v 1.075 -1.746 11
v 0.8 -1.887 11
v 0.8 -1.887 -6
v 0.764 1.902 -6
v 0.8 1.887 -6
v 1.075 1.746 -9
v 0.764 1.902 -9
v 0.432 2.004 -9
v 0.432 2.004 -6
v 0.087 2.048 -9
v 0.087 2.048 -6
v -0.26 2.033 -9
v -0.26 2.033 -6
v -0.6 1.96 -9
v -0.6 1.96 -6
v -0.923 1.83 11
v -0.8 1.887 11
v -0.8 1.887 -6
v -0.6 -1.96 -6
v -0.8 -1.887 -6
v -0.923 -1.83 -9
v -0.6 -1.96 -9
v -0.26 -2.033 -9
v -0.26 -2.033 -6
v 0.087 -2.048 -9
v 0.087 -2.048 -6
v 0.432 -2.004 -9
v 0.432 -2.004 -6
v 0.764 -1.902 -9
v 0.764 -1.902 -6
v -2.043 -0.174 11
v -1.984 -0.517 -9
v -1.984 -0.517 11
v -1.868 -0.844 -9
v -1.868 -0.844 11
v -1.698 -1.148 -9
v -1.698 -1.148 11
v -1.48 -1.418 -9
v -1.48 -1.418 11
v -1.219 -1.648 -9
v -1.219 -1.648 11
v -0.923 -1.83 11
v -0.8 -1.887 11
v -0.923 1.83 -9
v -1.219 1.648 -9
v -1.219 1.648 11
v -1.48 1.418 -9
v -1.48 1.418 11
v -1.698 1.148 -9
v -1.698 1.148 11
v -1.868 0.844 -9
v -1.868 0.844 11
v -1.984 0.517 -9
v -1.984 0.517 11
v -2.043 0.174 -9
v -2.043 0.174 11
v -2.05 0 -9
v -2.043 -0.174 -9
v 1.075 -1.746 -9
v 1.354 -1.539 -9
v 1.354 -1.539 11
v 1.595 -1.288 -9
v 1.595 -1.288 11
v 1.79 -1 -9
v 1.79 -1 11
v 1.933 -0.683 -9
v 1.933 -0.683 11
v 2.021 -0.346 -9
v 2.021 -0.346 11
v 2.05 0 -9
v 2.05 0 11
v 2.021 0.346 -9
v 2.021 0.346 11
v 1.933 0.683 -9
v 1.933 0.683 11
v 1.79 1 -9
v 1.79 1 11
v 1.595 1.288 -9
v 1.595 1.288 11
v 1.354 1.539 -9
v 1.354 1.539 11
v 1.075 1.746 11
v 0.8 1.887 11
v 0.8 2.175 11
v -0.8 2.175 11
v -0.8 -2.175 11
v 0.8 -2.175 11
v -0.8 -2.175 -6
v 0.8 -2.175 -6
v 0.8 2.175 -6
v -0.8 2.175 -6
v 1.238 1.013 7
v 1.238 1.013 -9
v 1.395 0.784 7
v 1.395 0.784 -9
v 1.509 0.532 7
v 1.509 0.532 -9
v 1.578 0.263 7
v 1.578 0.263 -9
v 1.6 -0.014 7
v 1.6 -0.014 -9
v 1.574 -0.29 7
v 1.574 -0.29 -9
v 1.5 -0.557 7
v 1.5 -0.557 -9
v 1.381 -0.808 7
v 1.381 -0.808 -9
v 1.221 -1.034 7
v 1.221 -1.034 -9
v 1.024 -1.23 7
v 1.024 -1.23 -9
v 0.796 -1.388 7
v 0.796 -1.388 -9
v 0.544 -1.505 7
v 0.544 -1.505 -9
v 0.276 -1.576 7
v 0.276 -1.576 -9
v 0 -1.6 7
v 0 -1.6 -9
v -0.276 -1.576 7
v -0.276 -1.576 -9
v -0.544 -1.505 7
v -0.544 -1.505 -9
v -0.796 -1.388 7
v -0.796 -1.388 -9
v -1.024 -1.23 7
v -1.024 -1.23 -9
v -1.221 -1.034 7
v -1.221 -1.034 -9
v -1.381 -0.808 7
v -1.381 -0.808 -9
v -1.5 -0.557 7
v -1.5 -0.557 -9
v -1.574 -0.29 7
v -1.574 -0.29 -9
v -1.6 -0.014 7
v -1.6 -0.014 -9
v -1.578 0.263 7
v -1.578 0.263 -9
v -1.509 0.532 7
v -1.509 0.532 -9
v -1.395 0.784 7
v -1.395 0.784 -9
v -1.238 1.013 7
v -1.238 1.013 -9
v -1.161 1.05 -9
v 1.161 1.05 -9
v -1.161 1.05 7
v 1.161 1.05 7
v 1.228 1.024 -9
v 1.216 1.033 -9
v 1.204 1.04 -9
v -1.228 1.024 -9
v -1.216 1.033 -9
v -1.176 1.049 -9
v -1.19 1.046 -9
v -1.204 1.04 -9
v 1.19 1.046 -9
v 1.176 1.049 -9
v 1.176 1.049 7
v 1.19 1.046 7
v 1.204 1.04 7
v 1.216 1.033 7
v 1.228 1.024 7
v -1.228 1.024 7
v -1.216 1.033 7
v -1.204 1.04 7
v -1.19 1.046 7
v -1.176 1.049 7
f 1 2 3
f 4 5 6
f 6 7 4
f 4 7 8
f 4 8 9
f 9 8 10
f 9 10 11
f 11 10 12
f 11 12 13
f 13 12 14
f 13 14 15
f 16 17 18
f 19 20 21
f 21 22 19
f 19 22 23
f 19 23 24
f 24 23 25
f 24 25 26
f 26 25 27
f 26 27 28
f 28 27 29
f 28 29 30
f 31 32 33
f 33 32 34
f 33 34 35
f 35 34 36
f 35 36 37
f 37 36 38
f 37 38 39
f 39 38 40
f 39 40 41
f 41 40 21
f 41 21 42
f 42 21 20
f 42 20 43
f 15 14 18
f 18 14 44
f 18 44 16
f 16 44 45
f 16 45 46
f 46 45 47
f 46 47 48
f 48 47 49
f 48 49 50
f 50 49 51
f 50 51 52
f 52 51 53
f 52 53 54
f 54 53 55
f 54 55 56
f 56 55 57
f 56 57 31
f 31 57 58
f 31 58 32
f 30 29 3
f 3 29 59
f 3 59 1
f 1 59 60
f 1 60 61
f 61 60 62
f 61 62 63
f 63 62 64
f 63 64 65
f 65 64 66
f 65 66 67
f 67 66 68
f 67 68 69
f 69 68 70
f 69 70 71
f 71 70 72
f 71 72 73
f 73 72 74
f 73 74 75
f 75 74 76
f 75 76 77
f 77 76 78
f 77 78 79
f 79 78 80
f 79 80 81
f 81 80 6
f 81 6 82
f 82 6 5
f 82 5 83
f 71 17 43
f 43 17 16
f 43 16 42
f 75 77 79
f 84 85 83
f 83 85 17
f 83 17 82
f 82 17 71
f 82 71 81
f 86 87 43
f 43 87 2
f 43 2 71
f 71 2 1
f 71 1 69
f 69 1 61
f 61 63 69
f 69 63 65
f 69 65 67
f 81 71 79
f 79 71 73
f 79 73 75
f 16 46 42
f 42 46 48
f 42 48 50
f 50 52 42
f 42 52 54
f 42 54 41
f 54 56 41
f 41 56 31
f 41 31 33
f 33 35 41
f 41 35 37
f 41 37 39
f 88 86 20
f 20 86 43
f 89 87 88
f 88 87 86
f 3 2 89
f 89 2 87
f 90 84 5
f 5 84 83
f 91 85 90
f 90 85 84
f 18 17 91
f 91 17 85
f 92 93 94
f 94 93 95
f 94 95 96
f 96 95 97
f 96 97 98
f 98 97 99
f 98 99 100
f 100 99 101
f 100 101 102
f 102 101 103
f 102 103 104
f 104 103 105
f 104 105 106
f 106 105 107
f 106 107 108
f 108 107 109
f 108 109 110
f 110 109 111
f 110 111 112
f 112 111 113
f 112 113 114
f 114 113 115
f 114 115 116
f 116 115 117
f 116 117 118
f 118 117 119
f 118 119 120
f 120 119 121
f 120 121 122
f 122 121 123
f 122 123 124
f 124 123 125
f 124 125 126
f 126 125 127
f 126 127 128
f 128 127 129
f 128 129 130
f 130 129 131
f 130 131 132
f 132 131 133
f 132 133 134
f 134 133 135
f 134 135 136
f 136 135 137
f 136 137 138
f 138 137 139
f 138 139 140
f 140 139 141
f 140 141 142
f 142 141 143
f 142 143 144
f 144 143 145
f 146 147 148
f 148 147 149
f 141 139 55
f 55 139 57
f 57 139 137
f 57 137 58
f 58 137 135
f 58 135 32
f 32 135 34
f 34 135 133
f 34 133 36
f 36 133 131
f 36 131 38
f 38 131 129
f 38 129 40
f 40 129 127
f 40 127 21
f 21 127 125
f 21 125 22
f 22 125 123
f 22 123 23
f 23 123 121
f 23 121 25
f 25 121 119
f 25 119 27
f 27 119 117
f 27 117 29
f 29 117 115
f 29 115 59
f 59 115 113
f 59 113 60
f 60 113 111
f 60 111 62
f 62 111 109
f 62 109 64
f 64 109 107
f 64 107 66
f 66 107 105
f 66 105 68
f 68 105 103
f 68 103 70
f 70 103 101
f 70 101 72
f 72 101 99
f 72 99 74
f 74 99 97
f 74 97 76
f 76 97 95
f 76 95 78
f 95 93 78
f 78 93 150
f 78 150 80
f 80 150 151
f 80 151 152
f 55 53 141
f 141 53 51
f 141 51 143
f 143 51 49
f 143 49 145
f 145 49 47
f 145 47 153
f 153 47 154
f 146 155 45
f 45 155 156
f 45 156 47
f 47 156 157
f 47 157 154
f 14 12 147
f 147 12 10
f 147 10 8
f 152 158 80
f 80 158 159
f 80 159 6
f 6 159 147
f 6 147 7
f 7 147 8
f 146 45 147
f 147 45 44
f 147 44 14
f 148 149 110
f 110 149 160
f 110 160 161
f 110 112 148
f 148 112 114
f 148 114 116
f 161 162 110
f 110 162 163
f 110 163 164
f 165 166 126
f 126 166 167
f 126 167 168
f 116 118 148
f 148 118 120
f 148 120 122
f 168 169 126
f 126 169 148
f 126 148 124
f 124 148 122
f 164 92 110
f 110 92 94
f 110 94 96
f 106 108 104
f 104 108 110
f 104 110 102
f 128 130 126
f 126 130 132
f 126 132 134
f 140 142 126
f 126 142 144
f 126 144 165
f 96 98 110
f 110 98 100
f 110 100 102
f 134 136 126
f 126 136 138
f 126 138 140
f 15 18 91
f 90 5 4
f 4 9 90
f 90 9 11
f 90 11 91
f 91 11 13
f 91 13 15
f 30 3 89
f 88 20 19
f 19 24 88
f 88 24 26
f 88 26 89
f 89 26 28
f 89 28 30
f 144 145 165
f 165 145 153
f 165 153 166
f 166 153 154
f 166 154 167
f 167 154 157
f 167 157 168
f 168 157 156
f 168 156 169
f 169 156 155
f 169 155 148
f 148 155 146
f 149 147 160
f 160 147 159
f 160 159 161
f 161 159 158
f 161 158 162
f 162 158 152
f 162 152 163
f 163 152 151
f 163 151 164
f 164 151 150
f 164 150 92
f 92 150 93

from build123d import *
from build123d.topology import SkipClean

# Parameters (mm, degrees)
SKETCH1_R                = 2
BOSS_EXTRUDE1_DEPTH      = 7
SKETCH3_R                = 2
SKETCH3_W                = 4.25
SKETCH3_H                = 1.5
BOSS_EXTRUDE3_DEPTH      = 4
BOSS_EXTRUDE4_START      = 4
BOSS_EXTRUDE4_DEPTH      = 4
BOSS_EXTRUDE5_START      = -8
BOSS_EXTRUDE5_DEPTH      = 8
CUT_EXTRUDE1_START       = -8
CUT_EXTRUDE1_DEPTH       = 8
CUT_EXTRUDE2_DEPTH       = 7
BOSS_EXTRUDE6_DEPTH      = 8
BOSS_EXTRUDE6_DEPTH_BACK = 3
SKETCH2_R                = 2.05
SKETCH2_R_2              = 2
BOSS_EXTRUDE7_START      = -8
BOSS_EXTRUDE7_DEPTH      = 8
BOSS_EXTRUDE8_DEPTH      = 9
BOSS_EXTRUDE8_DEPTH_BACK = 7
SKETCH11_R               = 2.05
BOSS_EXTRUDE9_DEPTH      = 9
FILLET1_R                = 0.1


with BuildPart() as part:
    # Sketch1 → Boss-Extrude1 (new body)
    with BuildSketch(Plane.XY):
        Circle(SKETCH1_R)
        with BuildLine():
            ThreePointArc((-1.5, 0), (-1.401258538, 0.535233135), (-1.118033989, 1))
            Line((-1.118033989, 1), (1.118033989, 1))
            ThreePointArc((1.118033989, 1), (1.401258538, 0.535233135), (1.5, 0))
            ThreePointArc((1.5, 0), (0, -1.5), (-1.5, 0))
        make_face(mode=Mode.SUBTRACT)
    extrude(amount=BOSS_EXTRUDE1_DEPTH)

    # Sketch3 → Boss-Extrude3 (add)
    with BuildSketch(Plane.XY.offset(7)):
        with Locations(Location((0, 0, 0), (0, 0, 157.975687163))):
            Circle(SKETCH3_R)
        Rectangle(SKETCH3_W, SKETCH3_H)
    extrude(amount=BOSS_EXTRUDE3_DEPTH)

    # Sketch4 → Boss-Extrude4 (add)
    with BuildSketch(Plane(origin=(0, 0, 7), x_dir=(-1, 0, 0), z_dir=(0, 0, -1)).offset(BOSS_EXTRUDE4_START)):
        with BuildLine():
            Line((-2.125, -0.75), (-1.854049622, -0.75))
            ThreePointArc((-1.854049622, -0.75), (-2, 0), (-1.854049622, 0.75))
            Line((-1.854049622, 0.75), (-2.125, 0.75))
            Line((-2.125, 0.75), (-2.125, -0.75))
        make_face()
        with BuildLine():
            Line((2.125, 0.75), (1.854049622, 0.75))
            ThreePointArc((1.854049622, 0.75), (2, 0), (1.854049622, -0.75))
            Line((1.854049622, -0.75), (2.125, -0.75))
            Line((2.125, -0.75), (2.125, 0.75))
        make_face()
    extrude(amount=-BOSS_EXTRUDE4_DEPTH)

    # Sketch6 → Boss-Extrude5 (add)
    with BuildSketch(Plane.XY.offset(11).offset(BOSS_EXTRUDE5_START)):
        with BuildLine():
            Line((-0.75, -1.854049622), (-0.75, -2.125))
            Line((-0.75, -2.125), (0.75, -2.125))
            Line((0.75, -2.125), (0.75, -1.854049622))
            ThreePointArc((0.75, -1.854049622), (0, -2), (-0.75, -1.854049622))
        make_face()
        with BuildLine():
            Line((0.75, 1.854049622), (0.75, 2.125))
            Line((0.75, 2.125), (-0.75, 2.125))
            Line((-0.75, 2.125), (-0.75, 1.854049622))
            ThreePointArc((-0.75, 1.854049622), (0, 2), (0.75, 1.854049622))
        make_face()
    extrude(amount=BOSS_EXTRUDE5_DEPTH)

    # Sketch7 → Cut-Extrude1 (cut)
    with SkipClean():  # the faces are left unmerged after this step: merging them gives an invalid solid
        with BuildSketch(Plane.XY.offset(11).offset(CUT_EXTRUDE1_START)):
            with BuildLine():
                Line((-2.125, -0.75), (-1.854049622, -0.75))
                ThreePointArc((-1.854049622, -0.75), (-2, 0), (-1.854049622, 0.75))
                Line((-1.854049622, 0.75), (-2.125, 0.75))
                Line((-2.125, 0.75), (-2.125, -0.75))
            make_face()
            with BuildLine():
                Line((1.854049622, -0.75), (2.125, -0.75))
                Line((2.125, -0.75), (2.125, 0.75))
                Line((2.125, 0.75), (1.854049622, 0.75))
                ThreePointArc((1.854049622, 0.75), (2, 0), (1.854049622, -0.75))
            make_face()
        extrude(amount=CUT_EXTRUDE1_DEPTH, mode=Mode.SUBTRACT)

    # Sketch8 → Cut-Extrude2 (cut)
    with SkipClean():  # the faces are left unmerged after this step: merging them gives an invalid solid
        with BuildSketch(Plane(origin=(0, 0, 0), x_dir=(-1, 0, 0), z_dir=(0, 0, -1))):
            with BuildLine():
                Line((-1.183215957, 1.15), (1.183215957, 1.15))
                ThreePointArc((1.183215957, 1.15), (0, -1.65), (-1.183215957, 1.15))
            make_face()
            with BuildLine():
                Line((-1.118033989, 1), (1.118033989, 1))
                ThreePointArc((1.118033989, 1), (0, -1.5), (-1.118033989, 1))
            make_face(mode=Mode.SUBTRACT)
        extrude(amount=-CUT_EXTRUDE2_DEPTH, mode=Mode.SUBTRACT)

    # Sketch2 → Boss-Extrude6 (add, two sides: drawn at the far end of the back side and taken through both)
    with BuildSketch(Plane.XY.offset(3).offset(-BOSS_EXTRUDE6_DEPTH_BACK)):
        Circle(SKETCH2_R)
        Circle(SKETCH2_R_2, mode=Mode.SUBTRACT)
    extrude(amount=BOSS_EXTRUDE6_DEPTH + BOSS_EXTRUDE6_DEPTH_BACK)

    # Sketch10 → Boss-Extrude7 (add)
    with BuildSketch(Plane(origin=(0, 0, 3), x_dir=(-1, 0, 0), z_dir=(0, 0, -1)).offset(BOSS_EXTRUDE7_START)):
        with BuildLine():
            Line((0.75, -1.907878403), (0.75, -2.125))
            Line((0.75, -2.125), (-0.75, -2.125))
            Line((-0.75, -2.125), (-0.75, -1.907878403))
            ThreePointArc((-0.75, -1.907878403), (-0.77506725, -1.897833174), (-0.8, -1.887458609))
            Line((-0.8, -1.887458609), (-0.8, -2.175))
            Line((-0.8, -2.175), (0.8, -2.175))
            Line((0.8, -2.175), (0.8, -1.887458609))
            ThreePointArc((0.8, -1.887458609), (0.77506725, -1.897833174), (0.75, -1.907878403))
        make_face()
        with BuildLine():
            Line((-0.8, 2.175), (-0.8, 1.887458609))
            ThreePointArc((-0.8, 1.887458609), (-0.77506725, 1.897833174), (-0.75, 1.907878403))
            Line((-0.75, 1.907878403), (-0.75, 2.125))
            Line((-0.75, 2.125), (0.75, 2.125))
            Line((0.75, 2.125), (0.75, 1.907878403))
            ThreePointArc((0.75, 1.907878403), (0.77506725, 1.897833174), (0.8, 1.887458609))
            Line((0.8, 1.887458609), (0.8, 2.175))
            Line((0.8, 2.175), (-0.8, 2.175))
        make_face()
    extrude(amount=BOSS_EXTRUDE7_DEPTH)

    # Sketch11 → Boss-Extrude8 (add, two sides: drawn at the far end of the back side and taken through both)
    with BuildSketch(Plane(origin=(0, 0, 0), x_dir=(-1, 0, 0), z_dir=(0, 0, -1)).offset(-BOSS_EXTRUDE8_DEPTH_BACK)):
        with Locations(Location((0, 0, 0), (0, 0, 112.969676572))):
            Circle(SKETCH11_R)
        with BuildLine():
            Line((-1.207269647, 1.05), (1.207269647, 1.05))
            ThreePointArc((1.207269647, 1.05), (0, -1.6), (-1.207269647, 1.05))
        make_face(mode=Mode.SUBTRACT)
    extrude(amount=BOSS_EXTRUDE8_DEPTH + BOSS_EXTRUDE8_DEPTH_BACK)

    # Sketch12 → Boss-Extrude9 (add)
    with BuildSketch(Plane(origin=(0, 0, 3), x_dir=(-1, 0, 0), z_dir=(0, 0, -1))):
        with BuildLine():
            Line((-0.8, 2.175), (-0.8, 1.887458609))
            ThreePointArc((-0.8, 1.887458609), (0, 2.05), (0.8, 1.887458609))
            Line((0.8, 1.887458609), (0.8, 2.175))
            Line((0.8, 2.175), (-0.8, 2.175))
        make_face()
        with BuildLine():
            Line((0.8, -2.175), (0.8, -1.887458609))
            ThreePointArc((0.8, -1.887458609), (0, -2.05), (-0.8, -1.887458609))
            Line((-0.8, -1.887458609), (-0.8, -2.175))
            Line((-0.8, -2.175), (0.8, -2.175))
        make_face()
    extrude(amount=BOSS_EXTRUDE9_DEPTH)

    # Fillet1
    fillet1_edges = [part.edges().sort_by_distance(p)[0] for p in [
        (1.207269647, 1.05, -4.5),
        (-1.207269647, 1.05, -4.5),
    ]]
    fillet(fillet1_edges, radius=FILLET1_R)


solid = part.part
